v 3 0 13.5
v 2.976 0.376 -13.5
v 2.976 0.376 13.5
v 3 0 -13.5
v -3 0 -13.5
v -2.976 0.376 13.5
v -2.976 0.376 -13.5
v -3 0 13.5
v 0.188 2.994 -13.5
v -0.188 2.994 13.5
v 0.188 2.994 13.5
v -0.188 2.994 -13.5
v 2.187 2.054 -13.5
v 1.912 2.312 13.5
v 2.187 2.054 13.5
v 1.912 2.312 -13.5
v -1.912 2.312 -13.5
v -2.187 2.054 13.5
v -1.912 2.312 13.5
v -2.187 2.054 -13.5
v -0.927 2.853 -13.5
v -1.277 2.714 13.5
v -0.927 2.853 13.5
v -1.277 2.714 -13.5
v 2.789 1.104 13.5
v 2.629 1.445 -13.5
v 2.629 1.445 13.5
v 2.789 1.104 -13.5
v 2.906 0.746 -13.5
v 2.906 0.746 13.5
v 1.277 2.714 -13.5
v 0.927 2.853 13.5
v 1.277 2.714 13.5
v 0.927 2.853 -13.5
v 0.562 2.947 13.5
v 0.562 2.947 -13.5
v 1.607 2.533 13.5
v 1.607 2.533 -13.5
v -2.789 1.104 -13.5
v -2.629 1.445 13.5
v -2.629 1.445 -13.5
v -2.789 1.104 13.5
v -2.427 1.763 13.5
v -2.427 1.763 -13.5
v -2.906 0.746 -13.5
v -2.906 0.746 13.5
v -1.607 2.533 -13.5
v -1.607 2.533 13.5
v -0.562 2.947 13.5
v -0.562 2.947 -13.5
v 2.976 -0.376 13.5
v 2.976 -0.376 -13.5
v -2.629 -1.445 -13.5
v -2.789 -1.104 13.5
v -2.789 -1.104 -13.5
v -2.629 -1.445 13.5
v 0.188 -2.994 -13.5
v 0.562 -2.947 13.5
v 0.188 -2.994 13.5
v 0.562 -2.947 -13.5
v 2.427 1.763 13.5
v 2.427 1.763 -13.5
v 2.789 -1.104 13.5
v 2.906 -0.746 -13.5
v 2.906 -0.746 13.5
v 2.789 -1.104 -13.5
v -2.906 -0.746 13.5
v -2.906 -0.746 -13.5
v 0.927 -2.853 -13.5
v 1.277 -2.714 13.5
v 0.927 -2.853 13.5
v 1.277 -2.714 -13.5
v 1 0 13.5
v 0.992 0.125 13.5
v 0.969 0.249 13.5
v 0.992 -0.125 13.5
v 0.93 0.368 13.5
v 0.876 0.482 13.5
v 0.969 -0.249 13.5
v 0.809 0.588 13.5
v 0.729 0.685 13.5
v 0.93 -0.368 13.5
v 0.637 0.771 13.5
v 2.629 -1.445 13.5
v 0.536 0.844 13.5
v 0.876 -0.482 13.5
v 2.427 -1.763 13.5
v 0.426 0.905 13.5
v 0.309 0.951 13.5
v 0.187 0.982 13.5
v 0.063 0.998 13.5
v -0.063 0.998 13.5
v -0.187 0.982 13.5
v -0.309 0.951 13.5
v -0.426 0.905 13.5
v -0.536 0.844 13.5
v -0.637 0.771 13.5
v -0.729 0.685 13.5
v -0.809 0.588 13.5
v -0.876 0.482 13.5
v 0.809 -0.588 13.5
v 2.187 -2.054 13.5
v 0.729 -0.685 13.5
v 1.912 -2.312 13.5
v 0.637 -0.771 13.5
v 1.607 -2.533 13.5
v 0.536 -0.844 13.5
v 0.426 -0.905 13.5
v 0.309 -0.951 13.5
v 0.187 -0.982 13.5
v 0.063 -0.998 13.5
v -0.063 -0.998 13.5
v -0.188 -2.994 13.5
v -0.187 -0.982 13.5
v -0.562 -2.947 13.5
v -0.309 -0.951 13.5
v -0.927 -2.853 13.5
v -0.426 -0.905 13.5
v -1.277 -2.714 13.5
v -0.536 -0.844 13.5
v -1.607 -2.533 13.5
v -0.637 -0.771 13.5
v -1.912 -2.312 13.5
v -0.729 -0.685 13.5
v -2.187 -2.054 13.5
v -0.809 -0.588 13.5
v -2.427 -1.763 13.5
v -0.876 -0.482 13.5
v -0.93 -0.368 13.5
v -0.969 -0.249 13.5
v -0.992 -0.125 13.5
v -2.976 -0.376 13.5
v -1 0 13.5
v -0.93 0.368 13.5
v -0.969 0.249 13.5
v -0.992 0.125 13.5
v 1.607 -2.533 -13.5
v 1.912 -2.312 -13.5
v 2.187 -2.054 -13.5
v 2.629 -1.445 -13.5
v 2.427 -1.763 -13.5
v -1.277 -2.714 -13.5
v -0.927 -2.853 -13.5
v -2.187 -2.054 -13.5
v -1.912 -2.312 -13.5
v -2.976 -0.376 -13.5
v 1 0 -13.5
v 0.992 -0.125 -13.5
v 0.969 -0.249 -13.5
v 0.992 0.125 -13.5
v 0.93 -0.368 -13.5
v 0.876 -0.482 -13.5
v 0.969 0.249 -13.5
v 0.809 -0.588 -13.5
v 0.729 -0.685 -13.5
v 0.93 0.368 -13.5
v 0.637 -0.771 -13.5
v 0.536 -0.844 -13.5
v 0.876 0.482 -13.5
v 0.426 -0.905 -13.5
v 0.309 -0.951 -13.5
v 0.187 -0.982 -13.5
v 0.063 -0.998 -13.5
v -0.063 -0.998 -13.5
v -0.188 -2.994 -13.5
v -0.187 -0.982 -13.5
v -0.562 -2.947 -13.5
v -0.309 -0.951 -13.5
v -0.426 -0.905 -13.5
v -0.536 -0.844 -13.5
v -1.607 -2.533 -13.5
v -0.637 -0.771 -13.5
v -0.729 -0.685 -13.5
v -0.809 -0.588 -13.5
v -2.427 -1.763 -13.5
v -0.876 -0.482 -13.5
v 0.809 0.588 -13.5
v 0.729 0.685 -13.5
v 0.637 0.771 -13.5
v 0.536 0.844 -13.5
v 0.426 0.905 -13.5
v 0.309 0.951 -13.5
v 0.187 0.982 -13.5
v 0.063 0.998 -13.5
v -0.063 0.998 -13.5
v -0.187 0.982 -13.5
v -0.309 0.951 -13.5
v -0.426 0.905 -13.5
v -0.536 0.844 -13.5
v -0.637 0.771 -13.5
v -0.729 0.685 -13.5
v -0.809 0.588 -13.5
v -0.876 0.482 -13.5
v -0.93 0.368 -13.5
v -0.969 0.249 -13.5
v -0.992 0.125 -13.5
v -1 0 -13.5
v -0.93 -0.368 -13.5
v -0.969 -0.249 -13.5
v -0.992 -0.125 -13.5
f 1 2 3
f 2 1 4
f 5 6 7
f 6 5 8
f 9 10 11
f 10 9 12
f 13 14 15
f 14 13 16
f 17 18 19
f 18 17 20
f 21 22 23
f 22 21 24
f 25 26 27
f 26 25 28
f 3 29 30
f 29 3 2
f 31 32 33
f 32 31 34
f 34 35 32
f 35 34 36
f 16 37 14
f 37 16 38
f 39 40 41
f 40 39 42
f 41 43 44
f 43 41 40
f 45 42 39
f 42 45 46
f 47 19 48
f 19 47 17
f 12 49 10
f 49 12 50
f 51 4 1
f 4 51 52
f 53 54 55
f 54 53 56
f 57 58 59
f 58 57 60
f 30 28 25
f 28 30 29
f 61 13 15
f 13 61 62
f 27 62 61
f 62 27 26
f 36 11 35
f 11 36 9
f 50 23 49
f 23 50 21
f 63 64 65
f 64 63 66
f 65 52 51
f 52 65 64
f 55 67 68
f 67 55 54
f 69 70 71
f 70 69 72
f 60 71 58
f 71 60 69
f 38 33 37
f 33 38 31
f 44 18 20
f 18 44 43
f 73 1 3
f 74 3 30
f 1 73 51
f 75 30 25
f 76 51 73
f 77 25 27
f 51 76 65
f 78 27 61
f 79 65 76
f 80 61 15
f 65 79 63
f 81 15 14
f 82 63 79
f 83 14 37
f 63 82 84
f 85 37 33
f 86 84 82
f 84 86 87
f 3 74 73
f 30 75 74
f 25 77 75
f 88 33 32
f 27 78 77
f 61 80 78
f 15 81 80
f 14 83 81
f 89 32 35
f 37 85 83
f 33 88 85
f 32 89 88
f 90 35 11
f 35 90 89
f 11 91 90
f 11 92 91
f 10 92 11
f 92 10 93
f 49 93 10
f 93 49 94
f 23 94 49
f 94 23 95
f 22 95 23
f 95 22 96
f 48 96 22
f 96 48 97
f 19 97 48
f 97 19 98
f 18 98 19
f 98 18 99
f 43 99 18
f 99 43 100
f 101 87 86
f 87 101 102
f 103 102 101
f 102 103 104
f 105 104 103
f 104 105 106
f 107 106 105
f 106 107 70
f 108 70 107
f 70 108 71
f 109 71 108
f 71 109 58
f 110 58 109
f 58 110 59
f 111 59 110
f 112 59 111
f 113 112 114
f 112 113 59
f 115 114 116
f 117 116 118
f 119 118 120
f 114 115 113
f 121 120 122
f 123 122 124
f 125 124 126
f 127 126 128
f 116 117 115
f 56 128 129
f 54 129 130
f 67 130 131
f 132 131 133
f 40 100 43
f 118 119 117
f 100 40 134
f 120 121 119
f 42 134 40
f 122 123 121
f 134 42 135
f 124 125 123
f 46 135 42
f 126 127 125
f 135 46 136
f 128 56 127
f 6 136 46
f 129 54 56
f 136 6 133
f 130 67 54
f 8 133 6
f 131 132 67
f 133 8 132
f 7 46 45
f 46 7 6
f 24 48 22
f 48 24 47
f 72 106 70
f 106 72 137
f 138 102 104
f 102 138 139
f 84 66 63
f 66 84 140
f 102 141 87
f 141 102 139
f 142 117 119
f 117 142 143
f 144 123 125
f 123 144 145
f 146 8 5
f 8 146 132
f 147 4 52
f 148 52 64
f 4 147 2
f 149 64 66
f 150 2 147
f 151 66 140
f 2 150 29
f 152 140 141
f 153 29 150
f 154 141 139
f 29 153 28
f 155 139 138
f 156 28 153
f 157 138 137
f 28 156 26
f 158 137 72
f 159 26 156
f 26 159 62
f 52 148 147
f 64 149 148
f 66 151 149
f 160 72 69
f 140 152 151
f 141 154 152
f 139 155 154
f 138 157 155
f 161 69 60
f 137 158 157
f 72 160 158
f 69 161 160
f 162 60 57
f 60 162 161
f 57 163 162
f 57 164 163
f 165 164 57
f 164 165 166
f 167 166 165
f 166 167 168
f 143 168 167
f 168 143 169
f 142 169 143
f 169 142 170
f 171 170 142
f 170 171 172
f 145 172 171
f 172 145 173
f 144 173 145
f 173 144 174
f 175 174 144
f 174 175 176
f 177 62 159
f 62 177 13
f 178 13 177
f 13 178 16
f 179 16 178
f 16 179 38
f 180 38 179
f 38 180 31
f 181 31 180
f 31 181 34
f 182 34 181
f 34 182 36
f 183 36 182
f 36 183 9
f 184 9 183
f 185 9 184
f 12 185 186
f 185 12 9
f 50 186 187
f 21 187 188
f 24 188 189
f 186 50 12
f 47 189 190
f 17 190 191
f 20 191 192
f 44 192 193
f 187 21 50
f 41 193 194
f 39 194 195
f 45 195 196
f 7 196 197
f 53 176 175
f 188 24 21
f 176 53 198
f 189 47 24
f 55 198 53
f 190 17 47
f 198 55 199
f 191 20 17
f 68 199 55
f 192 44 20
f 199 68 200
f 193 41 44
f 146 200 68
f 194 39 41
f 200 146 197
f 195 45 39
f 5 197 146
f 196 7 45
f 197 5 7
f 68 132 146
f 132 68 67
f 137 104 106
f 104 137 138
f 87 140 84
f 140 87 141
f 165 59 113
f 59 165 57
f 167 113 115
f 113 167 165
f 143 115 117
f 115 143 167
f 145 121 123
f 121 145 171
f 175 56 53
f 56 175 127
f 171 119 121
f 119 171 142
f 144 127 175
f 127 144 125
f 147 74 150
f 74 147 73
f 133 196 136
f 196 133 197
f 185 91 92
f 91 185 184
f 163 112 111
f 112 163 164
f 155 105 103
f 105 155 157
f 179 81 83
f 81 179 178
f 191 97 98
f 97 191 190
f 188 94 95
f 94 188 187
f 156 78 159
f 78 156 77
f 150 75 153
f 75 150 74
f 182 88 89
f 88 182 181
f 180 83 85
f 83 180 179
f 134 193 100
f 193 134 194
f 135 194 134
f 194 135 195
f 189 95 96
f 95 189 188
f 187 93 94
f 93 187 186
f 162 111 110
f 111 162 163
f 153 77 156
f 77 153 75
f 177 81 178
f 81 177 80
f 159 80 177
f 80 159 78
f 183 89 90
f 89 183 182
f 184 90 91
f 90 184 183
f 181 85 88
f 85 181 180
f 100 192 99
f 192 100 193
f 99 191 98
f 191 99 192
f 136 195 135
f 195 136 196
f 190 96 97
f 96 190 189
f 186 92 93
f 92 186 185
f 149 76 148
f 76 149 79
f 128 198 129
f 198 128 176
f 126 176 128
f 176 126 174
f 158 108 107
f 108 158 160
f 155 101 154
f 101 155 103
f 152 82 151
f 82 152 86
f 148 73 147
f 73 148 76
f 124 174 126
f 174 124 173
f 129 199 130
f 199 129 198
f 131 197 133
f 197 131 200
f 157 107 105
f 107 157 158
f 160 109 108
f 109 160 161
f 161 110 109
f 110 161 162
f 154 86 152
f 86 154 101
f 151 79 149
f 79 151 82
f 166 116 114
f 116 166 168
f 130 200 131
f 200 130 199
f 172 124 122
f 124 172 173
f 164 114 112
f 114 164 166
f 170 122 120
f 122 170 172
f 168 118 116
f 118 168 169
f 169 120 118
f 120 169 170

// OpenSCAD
$fn = 50;


difference() {
	union() {
		translate(v = [0, 0, -13.5000000000]) {
			cylinder(h = 27, r = 3.0000000000);
		}
	}
	union() {
		translate(v = [0, 0, -100.0000000000]) {
			cylinder(h = 200, r = 1.0000000000);
		}
	}
}
